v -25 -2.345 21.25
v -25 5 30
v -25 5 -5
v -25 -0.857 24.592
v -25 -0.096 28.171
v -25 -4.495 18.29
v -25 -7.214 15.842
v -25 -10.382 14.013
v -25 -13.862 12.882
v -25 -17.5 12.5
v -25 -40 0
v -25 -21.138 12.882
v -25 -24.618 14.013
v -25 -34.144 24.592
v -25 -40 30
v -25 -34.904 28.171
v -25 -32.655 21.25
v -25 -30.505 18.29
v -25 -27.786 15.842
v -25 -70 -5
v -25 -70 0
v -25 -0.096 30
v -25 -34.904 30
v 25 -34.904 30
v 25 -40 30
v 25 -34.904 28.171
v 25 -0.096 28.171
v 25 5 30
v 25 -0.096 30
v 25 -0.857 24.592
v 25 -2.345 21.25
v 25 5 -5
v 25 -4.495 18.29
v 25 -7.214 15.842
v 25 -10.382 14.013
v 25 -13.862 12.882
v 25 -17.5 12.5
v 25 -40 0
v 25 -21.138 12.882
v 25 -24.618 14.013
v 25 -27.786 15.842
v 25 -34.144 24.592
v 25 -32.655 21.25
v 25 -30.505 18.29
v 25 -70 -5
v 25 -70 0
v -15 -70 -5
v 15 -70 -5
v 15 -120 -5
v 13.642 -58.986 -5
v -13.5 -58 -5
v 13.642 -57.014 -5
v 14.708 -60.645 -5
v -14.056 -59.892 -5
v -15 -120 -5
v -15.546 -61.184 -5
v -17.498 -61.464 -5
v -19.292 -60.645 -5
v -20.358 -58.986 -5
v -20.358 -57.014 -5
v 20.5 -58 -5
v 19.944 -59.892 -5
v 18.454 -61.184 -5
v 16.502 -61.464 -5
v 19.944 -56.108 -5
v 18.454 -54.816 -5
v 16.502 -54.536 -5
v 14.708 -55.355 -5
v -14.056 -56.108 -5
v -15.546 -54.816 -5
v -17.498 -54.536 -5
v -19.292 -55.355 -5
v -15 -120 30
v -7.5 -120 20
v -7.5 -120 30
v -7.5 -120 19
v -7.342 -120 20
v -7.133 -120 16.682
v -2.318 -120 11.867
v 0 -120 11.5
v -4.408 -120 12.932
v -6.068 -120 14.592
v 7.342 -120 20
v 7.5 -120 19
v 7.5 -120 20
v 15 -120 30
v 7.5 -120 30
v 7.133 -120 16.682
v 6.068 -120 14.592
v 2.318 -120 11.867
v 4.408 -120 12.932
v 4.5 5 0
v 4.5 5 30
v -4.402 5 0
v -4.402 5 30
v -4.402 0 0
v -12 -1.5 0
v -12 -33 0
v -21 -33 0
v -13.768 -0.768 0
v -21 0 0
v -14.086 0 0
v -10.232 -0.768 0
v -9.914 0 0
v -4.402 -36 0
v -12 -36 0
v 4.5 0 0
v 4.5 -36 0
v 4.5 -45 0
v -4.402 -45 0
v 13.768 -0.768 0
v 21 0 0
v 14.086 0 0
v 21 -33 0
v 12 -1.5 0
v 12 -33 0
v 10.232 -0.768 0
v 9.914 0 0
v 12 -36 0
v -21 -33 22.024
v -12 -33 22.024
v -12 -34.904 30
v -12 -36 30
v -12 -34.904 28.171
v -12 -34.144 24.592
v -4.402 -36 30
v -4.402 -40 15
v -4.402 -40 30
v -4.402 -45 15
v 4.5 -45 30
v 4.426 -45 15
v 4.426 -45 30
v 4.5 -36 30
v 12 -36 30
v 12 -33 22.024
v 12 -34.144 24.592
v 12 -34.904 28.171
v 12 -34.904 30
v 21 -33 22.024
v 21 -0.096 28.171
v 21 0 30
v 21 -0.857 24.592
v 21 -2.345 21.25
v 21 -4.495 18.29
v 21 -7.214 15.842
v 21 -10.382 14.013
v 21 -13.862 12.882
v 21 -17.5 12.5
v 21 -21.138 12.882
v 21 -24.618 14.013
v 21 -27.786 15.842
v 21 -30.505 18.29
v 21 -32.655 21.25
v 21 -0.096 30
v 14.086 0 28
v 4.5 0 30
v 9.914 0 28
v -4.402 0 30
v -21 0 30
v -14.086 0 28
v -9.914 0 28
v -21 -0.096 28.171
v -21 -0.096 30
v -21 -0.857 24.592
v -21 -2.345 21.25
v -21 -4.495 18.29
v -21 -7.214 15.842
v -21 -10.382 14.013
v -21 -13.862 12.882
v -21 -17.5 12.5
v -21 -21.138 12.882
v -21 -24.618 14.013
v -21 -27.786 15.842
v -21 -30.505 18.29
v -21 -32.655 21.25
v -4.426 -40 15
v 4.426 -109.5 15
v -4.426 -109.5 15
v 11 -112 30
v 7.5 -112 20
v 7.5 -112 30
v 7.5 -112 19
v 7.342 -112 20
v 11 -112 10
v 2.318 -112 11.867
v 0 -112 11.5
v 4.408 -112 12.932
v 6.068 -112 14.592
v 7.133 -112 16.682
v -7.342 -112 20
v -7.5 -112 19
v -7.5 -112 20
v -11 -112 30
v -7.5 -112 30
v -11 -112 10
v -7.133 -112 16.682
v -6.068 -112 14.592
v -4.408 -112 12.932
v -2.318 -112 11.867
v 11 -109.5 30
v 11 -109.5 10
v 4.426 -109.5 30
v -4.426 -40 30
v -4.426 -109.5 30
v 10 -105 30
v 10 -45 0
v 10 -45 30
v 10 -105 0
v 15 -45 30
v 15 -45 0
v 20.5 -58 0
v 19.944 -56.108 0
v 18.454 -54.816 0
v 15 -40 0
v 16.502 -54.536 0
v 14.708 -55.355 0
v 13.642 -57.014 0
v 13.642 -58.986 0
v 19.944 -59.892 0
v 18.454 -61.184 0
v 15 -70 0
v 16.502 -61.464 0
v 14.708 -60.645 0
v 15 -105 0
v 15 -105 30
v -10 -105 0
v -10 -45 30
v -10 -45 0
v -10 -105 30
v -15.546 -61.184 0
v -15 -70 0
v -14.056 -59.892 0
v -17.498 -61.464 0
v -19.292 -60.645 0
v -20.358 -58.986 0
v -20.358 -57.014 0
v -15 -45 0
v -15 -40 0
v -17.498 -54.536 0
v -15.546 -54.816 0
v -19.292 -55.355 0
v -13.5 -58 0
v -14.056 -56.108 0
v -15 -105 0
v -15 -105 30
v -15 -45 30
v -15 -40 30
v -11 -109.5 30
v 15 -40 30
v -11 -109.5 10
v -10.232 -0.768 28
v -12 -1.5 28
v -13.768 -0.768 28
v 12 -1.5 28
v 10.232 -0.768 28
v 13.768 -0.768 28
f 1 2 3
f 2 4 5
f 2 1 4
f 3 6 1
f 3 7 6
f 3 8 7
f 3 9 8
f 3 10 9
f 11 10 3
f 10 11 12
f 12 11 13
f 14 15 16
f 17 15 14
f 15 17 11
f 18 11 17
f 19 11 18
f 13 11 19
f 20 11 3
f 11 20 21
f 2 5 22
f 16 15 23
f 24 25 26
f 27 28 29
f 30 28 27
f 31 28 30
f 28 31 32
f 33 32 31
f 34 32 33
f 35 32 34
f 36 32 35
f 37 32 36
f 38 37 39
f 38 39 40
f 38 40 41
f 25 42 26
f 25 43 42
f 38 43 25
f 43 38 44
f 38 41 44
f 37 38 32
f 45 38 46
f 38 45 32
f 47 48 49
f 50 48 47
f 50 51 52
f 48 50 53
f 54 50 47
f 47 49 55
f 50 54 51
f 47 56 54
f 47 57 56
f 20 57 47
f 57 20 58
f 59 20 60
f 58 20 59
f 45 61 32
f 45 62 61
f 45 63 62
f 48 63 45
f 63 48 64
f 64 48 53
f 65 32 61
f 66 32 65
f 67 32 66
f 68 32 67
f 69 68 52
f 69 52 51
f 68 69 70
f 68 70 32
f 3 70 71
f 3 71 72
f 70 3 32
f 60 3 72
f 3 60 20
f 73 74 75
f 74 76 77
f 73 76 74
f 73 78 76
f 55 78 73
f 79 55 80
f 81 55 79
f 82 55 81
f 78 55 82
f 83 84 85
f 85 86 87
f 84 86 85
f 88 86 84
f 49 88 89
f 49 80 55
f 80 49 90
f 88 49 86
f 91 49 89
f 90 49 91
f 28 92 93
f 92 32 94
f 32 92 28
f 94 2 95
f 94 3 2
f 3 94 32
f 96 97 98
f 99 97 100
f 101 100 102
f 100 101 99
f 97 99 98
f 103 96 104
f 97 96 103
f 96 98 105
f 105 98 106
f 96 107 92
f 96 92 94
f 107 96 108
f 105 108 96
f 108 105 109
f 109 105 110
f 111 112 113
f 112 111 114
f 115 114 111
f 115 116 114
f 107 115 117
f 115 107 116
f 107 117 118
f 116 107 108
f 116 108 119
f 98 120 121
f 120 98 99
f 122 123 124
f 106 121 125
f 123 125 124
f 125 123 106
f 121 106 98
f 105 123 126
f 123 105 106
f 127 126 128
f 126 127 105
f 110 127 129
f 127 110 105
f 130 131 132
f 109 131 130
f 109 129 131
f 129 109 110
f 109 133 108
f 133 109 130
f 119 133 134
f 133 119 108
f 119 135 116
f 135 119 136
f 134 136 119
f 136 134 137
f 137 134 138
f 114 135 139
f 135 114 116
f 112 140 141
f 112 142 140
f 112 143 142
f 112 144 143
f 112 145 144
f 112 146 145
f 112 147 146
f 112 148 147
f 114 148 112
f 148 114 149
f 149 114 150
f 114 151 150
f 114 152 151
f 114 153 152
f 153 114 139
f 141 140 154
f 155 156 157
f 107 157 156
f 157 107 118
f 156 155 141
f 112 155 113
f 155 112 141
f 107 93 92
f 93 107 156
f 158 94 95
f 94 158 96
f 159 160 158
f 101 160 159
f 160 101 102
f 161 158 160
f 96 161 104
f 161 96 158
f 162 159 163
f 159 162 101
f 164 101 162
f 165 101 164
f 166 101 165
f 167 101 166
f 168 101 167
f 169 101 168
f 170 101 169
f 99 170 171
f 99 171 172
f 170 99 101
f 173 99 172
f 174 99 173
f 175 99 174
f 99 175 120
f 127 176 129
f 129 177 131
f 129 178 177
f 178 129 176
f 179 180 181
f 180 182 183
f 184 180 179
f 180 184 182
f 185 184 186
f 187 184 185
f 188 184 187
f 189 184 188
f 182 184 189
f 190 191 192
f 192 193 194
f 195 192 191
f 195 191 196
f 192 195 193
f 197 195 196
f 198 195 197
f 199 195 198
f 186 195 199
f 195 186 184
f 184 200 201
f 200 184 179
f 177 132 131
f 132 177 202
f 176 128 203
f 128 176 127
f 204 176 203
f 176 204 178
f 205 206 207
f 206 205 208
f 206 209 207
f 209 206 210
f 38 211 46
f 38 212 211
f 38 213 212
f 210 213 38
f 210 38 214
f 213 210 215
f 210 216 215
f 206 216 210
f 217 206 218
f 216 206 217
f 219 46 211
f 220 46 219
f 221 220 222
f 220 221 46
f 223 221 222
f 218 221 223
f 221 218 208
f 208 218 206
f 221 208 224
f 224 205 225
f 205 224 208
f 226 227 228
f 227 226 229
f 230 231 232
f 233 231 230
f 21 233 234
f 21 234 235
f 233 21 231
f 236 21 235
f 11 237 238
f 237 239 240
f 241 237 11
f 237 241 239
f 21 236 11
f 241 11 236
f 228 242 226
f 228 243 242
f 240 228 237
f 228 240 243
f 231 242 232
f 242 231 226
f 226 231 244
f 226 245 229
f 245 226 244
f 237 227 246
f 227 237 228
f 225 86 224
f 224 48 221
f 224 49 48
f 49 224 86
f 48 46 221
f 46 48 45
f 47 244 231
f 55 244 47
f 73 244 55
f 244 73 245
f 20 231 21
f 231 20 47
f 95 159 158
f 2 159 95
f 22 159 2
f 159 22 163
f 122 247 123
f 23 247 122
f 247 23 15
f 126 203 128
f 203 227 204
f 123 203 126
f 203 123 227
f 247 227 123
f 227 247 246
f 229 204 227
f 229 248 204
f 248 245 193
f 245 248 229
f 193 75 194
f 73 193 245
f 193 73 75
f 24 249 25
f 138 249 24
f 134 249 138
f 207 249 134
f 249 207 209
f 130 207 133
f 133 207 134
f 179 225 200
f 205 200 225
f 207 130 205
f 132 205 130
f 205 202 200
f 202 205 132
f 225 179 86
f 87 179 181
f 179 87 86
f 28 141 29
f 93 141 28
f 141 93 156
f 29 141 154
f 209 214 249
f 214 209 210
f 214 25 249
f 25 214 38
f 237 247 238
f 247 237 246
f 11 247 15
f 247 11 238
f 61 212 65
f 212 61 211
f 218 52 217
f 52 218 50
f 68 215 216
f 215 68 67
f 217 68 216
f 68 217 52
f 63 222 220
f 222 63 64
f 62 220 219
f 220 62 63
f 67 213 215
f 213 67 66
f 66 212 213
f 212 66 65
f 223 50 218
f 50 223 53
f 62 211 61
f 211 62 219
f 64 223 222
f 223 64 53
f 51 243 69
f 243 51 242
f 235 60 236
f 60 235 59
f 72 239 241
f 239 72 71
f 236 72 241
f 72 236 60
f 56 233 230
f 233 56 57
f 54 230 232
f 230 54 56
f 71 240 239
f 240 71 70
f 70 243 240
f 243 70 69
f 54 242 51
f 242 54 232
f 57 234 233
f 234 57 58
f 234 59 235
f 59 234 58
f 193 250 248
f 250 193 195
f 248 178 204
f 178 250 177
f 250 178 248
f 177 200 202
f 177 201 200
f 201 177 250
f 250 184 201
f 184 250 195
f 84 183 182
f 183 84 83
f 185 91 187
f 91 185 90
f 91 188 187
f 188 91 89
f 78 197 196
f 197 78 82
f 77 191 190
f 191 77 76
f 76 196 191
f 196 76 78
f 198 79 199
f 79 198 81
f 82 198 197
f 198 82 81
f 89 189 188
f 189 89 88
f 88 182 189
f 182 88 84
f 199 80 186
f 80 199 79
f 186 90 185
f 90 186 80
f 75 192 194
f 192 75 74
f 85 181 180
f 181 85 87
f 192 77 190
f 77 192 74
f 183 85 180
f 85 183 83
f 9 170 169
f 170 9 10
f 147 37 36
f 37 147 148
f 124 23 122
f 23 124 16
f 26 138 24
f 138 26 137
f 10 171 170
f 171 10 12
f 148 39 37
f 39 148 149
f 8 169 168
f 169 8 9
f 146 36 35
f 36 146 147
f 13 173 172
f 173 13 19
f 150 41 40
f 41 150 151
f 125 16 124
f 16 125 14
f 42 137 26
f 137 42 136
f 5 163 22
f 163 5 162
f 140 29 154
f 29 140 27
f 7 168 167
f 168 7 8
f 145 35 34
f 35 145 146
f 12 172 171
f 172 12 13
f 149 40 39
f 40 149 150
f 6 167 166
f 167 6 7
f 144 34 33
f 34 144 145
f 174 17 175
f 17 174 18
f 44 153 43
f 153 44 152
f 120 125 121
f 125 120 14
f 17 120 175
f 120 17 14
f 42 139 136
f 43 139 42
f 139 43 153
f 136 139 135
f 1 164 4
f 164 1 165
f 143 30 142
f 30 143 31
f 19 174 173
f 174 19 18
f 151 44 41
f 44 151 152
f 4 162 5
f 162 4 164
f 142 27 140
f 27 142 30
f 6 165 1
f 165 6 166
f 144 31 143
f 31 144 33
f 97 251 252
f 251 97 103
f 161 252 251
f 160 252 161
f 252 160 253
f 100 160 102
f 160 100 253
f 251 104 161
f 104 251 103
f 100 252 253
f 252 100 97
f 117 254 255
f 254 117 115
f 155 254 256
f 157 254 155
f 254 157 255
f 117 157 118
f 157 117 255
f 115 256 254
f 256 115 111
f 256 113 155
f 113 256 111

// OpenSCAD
motorSize = [40, 40, 31]; 
shaftDim = [5, 100]; 
motorTop = [22, 2,2];

syringeDim = [8, 10, 20]; 
MinStickOut = 13; 
MaxStickOut = 70; 

module motor(motorSize, shaftDim, motorTop){
union(){
cube(motorSize);
translate([motorSize[0] / 2, motorSize[1] / 2, motorSize[2]]) cylinder(h = motorTop[1], d = motorTop[0]); 
translate([motorSize[0] / 2, motorSize[1] / 2, -55]) cylinder(h = shaftDim[1], d = shaftDim[0]); 
    
    }
}


//motor(motorSize, shaftDim, motorTop);


//translate([-11, -112, 15]) cube([22, 2.5, 20]);

//translate([0, 0, 19]) rotate([90, 0, 0]) cylinder(h = 250, d = 8, $fn = 20);

//translate([0, -100, 19]) rotate([90, 0, 0]) cylinder(h = 100, d = 15, $fn = 20);
//translate([-7.5, -125, 20]) cube([15, 15, 15]);


module syringe(syringeDim, MinStickOut, MaxStickOut){
    
    cylinder(h = 30, d = syringeDim[0]); 
    translate([-syringeDim[1]/2, -syringeDim[2]/2, 0]) cube([syringeDim[1], syringeDim[2], 2]); 
    translate([0, 0, -MaxStickOut]) cylinder(h = MaxStickOut, d = 9); 
    
}







//make actuall cutout a little bigger
motorSize = [42, 42, 33]; 
shaftDim = [9, 100]; 
motorTop = [24, 3,3];

syringeDim = [9, 12, 22]; 
MinStickOut = 13; 
MaxStickOut = 70; 


union(){
{difference(){
translate([-25, -120, -5]) cube([50, 125, 50]); 


linear_extrude([40]) projection(cut = true) rotate([90,0,0])   translate([-motorSize[0] / 2, -motorSize[0] / 2, 0]) motor(motorSize, shaftDim, motorTop);
translate([0,0,15]) linear_extrude([40]) projection(cut = true) translate([0, -110, 0]) rotate([90, 90,0]) syringe(syringeDim, MinStickOut, MaxStickOut);

// remove extra material
translate([10, -105, 0]) cube([20, 60, 100]); 
translate([-30, -105, 0]) cube([20, 60, 100]); 
translate([15, -130, -10]) cube([20, 60, 100]); 
translate([-35, -130, -10]) cube([20, 60, 100]); 

translate([-35, -135, 30]) cube([100, 150, 150]); 

translate([15, -100, 0]) cube([20, 60, 100]); 
translate([-35, -100, 0]) cube([20, 60, 100]); 
    
    
//holes
translate([17, -58, -10]) cylinder(h = 20 , d = 7); 
translate([-17, -58, -10]) cylinder(h = 20 , d = 7); 
    

// make bigger end for bigger syringe
translate([-11, -112, 10]) cube([22, 2.5, 20]);

//translate([0, 0, 19]) rotate([90, 0, 0]) cylinder(h = 250, d = 8, $fn = 20);

translate([0, -110, 19]) rotate([90, 0, 0]) cylinder(h = 100, d = 15, $fn = 20);
translate([-7.5, -125, 20]) cube([15, 15, 15]);
translate([-50, -17.5, 30]) rotate([0, 90, 0]) cylinder(h = 100, d = 35);

 
    }}
        translate([-12, 1, -2]) cylinder(h = 30, d = 5);
    translate([12, 1, -2]) cylinder(h = 30, d = 5);
    }






  /*translate([0,0,21]) {
    color("red") rotate([90,0,0])   translate([-motorSize[0] / 2, -motorSize[0] / 2, 0]) motor(motorSize, shaftDim, motorTop);
    color("blue") translate([0, -110, 0]) rotate([90, 90,0]) syringe(syringeDim, MinStickOut, MaxStickOut);} */


module sadapt(){
difference(){
cylinder(h = 5.8, d = 10); 

cylinder(h = 5.8, d = 4.2);
    translate([4, -10, 0]) cube(20); 
translate([-4 - 20, -10, 0]) cube(20); 
    }}
    
/*translate([0, -130, 21]) rotate([90, 0,0]) sadapt(); */
